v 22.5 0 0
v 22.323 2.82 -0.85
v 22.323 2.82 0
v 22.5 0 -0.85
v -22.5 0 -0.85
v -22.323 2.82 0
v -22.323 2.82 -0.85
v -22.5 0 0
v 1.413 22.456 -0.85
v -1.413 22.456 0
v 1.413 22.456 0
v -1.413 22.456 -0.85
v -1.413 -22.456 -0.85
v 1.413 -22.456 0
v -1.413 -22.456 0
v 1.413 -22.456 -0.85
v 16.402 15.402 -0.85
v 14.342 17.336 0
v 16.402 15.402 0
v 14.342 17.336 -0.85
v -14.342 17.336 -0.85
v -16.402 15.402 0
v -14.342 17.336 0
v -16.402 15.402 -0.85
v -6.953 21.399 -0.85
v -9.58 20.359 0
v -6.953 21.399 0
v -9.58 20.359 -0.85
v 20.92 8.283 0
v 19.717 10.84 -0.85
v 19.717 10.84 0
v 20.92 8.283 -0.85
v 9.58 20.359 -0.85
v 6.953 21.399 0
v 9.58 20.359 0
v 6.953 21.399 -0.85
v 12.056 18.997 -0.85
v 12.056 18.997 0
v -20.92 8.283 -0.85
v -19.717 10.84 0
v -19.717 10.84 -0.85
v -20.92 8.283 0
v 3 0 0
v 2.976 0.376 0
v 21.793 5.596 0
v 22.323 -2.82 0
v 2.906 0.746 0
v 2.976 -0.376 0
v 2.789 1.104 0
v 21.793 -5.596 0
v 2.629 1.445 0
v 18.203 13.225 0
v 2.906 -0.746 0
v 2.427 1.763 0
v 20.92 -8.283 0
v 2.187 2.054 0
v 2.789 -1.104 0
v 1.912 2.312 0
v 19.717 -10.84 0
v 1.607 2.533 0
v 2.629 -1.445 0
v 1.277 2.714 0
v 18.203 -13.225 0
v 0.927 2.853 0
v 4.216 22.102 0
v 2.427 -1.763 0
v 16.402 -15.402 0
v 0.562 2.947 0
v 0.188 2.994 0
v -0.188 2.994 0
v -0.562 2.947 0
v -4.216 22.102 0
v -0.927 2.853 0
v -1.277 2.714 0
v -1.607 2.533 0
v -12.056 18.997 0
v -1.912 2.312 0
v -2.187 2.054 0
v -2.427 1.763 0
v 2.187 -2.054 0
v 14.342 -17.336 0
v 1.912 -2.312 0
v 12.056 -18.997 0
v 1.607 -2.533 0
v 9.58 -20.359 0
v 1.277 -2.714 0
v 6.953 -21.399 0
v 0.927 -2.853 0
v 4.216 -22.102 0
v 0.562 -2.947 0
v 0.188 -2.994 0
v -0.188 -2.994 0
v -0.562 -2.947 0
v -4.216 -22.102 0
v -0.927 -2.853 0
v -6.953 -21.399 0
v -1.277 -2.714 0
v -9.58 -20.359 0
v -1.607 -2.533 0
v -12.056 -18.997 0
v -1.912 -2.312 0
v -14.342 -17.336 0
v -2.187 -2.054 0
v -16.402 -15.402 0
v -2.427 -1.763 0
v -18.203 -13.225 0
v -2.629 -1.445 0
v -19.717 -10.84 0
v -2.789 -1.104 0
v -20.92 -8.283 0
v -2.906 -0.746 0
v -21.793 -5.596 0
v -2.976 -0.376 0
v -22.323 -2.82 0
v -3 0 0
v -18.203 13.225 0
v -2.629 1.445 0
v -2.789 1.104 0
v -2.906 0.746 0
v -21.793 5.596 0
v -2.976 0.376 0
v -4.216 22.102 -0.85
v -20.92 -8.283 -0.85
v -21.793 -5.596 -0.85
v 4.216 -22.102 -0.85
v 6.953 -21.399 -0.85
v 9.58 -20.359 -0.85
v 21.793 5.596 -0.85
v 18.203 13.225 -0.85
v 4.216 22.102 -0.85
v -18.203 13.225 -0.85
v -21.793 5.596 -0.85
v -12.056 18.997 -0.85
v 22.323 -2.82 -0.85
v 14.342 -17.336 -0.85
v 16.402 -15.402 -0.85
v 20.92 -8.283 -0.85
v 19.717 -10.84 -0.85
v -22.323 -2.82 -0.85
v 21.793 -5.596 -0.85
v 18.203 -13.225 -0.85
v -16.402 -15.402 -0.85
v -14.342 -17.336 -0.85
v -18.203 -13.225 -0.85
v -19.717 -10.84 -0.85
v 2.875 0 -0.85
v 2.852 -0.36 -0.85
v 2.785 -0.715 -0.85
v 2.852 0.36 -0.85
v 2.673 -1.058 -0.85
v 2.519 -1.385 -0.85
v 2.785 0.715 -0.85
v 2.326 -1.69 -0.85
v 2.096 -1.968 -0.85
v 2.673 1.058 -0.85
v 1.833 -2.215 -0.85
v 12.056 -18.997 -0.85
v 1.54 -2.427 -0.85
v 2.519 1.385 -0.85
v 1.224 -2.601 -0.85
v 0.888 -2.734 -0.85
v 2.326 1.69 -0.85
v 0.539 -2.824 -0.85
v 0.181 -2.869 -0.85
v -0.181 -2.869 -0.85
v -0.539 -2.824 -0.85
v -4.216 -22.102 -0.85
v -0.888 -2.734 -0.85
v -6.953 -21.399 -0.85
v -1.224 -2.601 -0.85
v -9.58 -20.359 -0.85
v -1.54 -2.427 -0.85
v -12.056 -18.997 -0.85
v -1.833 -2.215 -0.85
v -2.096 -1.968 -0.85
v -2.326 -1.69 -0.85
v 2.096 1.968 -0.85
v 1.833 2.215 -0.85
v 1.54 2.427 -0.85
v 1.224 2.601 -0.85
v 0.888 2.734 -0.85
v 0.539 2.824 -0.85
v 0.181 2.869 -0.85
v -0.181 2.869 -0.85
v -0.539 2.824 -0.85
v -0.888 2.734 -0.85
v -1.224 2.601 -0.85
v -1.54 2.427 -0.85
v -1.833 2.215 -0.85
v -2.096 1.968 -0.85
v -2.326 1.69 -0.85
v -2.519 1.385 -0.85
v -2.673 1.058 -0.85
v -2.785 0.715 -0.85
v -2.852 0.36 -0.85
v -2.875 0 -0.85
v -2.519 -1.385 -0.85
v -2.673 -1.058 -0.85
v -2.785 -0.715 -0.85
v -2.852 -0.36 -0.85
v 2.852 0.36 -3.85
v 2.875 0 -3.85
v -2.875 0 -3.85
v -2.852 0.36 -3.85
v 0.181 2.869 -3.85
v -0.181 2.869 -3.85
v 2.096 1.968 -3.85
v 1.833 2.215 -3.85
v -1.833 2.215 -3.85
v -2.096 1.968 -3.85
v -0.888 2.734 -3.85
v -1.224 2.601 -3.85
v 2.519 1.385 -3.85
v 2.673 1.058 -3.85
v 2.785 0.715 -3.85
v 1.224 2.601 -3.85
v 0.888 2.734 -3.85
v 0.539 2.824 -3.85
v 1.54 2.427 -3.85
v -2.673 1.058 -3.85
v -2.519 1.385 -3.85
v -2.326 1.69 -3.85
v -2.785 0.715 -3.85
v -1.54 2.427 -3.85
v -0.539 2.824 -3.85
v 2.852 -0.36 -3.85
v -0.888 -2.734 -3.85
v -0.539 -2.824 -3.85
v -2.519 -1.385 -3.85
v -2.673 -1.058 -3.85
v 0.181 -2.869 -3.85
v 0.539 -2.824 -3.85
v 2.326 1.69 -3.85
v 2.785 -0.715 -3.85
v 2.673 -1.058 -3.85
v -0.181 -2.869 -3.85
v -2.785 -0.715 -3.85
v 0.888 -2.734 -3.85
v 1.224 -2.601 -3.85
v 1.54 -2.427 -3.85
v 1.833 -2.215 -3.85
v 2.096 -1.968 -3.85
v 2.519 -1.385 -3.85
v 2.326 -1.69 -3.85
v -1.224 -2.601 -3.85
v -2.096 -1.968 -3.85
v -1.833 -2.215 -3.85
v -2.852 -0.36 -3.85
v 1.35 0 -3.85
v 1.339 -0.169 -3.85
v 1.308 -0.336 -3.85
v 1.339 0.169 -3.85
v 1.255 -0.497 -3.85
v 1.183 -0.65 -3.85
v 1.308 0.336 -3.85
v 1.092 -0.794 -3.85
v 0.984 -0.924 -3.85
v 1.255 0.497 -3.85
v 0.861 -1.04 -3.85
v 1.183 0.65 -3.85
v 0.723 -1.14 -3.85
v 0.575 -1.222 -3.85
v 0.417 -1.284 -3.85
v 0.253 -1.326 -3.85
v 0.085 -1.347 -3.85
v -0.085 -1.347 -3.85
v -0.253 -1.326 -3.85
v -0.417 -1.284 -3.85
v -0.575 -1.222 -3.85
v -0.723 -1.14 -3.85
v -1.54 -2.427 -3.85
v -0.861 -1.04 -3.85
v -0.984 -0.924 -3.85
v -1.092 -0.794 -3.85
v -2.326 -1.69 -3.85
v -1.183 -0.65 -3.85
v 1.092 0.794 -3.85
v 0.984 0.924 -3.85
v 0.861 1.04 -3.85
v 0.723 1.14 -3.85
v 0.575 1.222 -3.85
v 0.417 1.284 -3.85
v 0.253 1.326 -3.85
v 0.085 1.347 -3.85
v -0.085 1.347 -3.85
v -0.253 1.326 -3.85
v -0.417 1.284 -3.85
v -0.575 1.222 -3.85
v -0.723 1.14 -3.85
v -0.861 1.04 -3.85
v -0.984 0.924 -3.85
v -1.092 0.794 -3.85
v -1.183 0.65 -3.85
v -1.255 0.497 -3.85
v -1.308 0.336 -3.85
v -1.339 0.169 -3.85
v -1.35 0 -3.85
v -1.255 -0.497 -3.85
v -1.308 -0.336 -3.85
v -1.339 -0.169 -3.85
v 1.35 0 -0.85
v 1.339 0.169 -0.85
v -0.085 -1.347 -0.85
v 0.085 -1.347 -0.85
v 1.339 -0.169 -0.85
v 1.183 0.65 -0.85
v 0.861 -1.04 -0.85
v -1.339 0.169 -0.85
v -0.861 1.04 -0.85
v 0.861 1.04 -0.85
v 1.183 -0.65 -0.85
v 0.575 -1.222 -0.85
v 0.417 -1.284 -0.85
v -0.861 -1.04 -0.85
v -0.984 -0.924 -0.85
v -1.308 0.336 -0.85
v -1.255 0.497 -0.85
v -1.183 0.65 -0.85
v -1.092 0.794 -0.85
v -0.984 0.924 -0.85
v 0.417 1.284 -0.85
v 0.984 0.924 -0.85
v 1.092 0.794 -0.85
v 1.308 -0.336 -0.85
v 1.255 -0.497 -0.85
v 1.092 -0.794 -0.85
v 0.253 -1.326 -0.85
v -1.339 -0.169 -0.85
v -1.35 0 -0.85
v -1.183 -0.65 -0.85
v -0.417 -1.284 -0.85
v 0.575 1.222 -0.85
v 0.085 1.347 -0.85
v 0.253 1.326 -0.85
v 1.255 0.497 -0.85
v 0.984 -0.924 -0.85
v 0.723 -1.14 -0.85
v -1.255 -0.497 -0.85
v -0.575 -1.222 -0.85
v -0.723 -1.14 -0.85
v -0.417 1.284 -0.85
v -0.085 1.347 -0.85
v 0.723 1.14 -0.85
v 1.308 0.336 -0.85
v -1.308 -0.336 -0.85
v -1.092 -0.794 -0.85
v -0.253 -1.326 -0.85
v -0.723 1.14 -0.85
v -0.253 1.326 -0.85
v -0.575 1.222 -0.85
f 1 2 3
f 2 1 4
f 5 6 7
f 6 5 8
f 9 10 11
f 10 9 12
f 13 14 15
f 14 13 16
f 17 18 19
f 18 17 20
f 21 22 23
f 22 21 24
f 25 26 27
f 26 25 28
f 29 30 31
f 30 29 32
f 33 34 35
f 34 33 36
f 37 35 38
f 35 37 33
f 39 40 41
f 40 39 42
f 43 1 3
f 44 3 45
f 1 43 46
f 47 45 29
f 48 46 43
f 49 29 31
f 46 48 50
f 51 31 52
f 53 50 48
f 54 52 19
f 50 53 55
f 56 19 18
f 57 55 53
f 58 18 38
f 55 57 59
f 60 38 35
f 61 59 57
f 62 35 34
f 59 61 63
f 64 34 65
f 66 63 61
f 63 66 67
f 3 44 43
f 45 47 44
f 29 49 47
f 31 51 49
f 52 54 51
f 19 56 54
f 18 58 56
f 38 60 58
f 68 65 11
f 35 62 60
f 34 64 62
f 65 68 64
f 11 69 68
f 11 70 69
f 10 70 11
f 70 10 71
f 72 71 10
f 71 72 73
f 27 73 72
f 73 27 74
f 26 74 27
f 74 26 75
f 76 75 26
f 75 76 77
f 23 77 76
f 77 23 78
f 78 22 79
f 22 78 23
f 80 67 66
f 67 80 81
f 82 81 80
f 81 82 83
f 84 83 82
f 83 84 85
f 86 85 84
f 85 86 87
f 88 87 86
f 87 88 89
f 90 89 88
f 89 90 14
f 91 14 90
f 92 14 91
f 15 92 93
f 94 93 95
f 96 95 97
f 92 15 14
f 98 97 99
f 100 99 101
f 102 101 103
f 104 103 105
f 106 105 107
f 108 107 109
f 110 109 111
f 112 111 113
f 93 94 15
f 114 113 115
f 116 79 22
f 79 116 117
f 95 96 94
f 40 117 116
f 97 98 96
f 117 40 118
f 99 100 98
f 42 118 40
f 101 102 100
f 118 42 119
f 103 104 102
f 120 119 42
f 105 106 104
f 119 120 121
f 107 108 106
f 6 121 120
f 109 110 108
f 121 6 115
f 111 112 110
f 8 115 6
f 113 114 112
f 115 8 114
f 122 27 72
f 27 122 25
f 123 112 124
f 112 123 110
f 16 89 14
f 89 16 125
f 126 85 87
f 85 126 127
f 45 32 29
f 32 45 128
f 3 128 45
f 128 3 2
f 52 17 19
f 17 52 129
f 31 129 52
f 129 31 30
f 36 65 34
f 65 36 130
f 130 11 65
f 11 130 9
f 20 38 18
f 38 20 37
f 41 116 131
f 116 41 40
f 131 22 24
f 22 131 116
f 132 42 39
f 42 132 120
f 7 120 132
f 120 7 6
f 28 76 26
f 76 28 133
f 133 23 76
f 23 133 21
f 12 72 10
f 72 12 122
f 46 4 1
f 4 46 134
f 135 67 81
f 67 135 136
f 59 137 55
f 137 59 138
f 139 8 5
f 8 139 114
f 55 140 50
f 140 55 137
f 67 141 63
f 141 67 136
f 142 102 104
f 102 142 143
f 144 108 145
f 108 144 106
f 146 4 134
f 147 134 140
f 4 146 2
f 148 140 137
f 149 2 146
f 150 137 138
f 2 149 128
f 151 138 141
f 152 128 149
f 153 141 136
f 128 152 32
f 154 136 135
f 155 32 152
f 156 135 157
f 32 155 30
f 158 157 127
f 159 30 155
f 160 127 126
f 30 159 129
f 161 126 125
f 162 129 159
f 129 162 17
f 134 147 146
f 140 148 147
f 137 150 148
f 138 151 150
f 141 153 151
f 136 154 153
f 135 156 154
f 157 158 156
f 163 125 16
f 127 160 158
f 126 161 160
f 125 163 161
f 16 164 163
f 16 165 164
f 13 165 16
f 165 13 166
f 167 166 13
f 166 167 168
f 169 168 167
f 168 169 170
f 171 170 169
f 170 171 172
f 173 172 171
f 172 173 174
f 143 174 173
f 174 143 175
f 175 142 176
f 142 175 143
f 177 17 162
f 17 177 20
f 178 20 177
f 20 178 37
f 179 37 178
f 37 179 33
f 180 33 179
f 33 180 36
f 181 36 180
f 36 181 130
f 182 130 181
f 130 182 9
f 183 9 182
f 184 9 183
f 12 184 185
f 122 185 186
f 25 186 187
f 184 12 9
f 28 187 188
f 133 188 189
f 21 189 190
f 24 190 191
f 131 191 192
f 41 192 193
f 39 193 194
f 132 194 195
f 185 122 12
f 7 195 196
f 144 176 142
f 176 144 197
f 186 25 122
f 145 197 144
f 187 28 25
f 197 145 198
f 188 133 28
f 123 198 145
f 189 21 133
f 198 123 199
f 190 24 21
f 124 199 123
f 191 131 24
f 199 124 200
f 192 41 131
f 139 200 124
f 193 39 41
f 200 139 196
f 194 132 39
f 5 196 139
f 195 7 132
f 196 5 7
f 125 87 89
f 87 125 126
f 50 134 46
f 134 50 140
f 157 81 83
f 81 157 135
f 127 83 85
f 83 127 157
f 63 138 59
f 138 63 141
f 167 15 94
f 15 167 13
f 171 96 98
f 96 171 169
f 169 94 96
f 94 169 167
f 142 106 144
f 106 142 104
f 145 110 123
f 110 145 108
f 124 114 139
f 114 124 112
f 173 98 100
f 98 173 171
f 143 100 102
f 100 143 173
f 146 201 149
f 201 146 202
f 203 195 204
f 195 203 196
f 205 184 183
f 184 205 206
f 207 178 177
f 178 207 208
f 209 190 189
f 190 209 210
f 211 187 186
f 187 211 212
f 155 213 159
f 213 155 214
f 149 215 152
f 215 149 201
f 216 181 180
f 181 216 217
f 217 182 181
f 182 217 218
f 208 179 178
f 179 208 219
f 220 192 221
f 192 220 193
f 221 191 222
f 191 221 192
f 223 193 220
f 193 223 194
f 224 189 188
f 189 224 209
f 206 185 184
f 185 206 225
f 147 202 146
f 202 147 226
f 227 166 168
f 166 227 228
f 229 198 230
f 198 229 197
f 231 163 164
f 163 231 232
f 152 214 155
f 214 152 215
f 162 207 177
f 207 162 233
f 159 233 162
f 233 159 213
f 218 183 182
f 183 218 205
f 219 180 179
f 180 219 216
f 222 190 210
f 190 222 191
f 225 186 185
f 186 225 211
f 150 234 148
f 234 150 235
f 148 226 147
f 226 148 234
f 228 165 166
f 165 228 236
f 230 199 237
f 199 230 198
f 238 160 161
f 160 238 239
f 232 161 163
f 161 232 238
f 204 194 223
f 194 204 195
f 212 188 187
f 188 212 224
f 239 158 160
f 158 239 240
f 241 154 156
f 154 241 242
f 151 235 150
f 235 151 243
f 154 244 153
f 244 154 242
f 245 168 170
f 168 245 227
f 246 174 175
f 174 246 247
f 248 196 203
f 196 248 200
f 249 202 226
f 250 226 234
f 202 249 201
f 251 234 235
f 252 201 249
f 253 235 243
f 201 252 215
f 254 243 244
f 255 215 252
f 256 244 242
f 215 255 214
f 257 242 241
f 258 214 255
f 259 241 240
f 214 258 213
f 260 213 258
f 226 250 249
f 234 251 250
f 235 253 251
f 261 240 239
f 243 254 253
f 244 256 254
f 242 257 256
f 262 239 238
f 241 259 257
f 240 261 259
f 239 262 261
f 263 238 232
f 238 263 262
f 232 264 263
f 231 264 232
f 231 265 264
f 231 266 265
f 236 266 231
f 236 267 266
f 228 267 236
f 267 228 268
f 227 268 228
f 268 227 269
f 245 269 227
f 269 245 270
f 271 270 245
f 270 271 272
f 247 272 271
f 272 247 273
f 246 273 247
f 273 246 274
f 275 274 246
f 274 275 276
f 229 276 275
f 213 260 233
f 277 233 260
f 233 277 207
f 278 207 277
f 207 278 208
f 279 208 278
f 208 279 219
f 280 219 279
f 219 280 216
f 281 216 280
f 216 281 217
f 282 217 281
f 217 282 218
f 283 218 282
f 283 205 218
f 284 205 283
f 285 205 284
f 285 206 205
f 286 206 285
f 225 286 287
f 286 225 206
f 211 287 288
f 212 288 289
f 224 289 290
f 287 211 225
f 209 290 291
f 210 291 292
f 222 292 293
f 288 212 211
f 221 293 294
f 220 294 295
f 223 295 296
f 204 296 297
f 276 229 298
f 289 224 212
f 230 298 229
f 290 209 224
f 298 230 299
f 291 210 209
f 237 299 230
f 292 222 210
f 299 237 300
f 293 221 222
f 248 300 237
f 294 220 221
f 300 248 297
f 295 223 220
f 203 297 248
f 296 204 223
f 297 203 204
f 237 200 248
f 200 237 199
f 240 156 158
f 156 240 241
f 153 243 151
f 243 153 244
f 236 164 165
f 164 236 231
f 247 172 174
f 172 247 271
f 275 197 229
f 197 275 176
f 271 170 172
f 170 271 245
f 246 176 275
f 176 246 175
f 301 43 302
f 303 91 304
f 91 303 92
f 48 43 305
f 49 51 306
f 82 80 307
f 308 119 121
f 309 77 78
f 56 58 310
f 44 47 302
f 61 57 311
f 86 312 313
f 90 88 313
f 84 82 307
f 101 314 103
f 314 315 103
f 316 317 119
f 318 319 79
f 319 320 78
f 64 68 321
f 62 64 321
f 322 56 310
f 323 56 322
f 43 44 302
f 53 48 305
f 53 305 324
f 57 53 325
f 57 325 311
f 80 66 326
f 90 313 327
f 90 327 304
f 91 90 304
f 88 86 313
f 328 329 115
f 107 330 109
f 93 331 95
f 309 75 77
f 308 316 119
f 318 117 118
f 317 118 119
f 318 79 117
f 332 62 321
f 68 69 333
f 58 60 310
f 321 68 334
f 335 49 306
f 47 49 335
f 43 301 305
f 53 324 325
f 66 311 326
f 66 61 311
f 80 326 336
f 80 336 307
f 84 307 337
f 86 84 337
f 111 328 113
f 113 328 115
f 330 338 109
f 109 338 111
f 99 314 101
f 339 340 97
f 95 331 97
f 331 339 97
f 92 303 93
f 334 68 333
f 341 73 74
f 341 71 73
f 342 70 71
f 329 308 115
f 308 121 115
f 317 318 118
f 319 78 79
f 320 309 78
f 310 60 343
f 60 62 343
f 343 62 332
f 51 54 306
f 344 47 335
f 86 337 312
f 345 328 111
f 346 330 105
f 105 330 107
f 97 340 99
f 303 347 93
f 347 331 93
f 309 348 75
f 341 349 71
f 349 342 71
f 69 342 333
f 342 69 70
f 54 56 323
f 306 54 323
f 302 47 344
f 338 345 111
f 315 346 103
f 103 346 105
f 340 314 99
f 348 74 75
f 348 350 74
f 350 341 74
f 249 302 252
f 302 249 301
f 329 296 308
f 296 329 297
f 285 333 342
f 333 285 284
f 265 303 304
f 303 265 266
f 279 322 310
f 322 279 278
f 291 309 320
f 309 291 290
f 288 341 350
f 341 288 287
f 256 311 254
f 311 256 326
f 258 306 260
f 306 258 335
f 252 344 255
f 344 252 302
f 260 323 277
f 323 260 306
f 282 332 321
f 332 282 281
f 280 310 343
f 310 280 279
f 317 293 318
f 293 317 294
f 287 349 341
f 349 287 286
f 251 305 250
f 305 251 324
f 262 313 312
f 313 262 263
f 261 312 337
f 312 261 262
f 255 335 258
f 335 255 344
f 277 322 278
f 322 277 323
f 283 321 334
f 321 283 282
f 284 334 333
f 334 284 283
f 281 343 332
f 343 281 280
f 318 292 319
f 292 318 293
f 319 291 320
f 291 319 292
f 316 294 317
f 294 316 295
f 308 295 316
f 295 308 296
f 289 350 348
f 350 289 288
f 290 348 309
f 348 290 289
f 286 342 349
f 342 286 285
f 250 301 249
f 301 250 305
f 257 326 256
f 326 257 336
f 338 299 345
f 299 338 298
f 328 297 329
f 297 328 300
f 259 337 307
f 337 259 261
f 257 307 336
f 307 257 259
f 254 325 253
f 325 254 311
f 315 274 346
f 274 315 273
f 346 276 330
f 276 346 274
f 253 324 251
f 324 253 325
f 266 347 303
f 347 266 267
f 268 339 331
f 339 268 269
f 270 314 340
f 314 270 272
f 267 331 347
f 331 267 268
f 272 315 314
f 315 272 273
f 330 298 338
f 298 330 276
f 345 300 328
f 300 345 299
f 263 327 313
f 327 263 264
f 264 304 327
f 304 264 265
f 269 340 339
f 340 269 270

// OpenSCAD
$fn = 50;


difference() {
	union() {
		translate(v = [0, 0, -0.8500000000]) {
			cylinder(h = 0.8500000000, r = 22.5000000000);
		}
		#translate(v = [0, 0, -3.8500000000]) {
			cylinder(h = 3.8500000000, r = 2.8750000000);
		}
	}
	union() {
		translate(v = [0, 0, 0]) {
			rotate(a = [0, 0, 0]) {
				difference() {
					union() {
						translate(v = [0, 0, -3.8500000000]) {
							cylinder(h = 3.8500000000, r = 1.0000000000);
						}
						translate(v = [0, 0, -0.8500000000]) {
							cylinder(h = 0.8500000000, r1 = 1.3500000000, r2 = 3.0000000000);
						}
						translate(v = [0, 0, -3.8500000000]) {
							cylinder(h = 3.8500000000, r = 1.3500000000);
						}
						translate(v = [0, 0, -3.8500000000]) {
							cylinder(h = 3.8500000000, r = 1.0000000000);
						}
					}
					union();
				}
			}
		}
	}
}
